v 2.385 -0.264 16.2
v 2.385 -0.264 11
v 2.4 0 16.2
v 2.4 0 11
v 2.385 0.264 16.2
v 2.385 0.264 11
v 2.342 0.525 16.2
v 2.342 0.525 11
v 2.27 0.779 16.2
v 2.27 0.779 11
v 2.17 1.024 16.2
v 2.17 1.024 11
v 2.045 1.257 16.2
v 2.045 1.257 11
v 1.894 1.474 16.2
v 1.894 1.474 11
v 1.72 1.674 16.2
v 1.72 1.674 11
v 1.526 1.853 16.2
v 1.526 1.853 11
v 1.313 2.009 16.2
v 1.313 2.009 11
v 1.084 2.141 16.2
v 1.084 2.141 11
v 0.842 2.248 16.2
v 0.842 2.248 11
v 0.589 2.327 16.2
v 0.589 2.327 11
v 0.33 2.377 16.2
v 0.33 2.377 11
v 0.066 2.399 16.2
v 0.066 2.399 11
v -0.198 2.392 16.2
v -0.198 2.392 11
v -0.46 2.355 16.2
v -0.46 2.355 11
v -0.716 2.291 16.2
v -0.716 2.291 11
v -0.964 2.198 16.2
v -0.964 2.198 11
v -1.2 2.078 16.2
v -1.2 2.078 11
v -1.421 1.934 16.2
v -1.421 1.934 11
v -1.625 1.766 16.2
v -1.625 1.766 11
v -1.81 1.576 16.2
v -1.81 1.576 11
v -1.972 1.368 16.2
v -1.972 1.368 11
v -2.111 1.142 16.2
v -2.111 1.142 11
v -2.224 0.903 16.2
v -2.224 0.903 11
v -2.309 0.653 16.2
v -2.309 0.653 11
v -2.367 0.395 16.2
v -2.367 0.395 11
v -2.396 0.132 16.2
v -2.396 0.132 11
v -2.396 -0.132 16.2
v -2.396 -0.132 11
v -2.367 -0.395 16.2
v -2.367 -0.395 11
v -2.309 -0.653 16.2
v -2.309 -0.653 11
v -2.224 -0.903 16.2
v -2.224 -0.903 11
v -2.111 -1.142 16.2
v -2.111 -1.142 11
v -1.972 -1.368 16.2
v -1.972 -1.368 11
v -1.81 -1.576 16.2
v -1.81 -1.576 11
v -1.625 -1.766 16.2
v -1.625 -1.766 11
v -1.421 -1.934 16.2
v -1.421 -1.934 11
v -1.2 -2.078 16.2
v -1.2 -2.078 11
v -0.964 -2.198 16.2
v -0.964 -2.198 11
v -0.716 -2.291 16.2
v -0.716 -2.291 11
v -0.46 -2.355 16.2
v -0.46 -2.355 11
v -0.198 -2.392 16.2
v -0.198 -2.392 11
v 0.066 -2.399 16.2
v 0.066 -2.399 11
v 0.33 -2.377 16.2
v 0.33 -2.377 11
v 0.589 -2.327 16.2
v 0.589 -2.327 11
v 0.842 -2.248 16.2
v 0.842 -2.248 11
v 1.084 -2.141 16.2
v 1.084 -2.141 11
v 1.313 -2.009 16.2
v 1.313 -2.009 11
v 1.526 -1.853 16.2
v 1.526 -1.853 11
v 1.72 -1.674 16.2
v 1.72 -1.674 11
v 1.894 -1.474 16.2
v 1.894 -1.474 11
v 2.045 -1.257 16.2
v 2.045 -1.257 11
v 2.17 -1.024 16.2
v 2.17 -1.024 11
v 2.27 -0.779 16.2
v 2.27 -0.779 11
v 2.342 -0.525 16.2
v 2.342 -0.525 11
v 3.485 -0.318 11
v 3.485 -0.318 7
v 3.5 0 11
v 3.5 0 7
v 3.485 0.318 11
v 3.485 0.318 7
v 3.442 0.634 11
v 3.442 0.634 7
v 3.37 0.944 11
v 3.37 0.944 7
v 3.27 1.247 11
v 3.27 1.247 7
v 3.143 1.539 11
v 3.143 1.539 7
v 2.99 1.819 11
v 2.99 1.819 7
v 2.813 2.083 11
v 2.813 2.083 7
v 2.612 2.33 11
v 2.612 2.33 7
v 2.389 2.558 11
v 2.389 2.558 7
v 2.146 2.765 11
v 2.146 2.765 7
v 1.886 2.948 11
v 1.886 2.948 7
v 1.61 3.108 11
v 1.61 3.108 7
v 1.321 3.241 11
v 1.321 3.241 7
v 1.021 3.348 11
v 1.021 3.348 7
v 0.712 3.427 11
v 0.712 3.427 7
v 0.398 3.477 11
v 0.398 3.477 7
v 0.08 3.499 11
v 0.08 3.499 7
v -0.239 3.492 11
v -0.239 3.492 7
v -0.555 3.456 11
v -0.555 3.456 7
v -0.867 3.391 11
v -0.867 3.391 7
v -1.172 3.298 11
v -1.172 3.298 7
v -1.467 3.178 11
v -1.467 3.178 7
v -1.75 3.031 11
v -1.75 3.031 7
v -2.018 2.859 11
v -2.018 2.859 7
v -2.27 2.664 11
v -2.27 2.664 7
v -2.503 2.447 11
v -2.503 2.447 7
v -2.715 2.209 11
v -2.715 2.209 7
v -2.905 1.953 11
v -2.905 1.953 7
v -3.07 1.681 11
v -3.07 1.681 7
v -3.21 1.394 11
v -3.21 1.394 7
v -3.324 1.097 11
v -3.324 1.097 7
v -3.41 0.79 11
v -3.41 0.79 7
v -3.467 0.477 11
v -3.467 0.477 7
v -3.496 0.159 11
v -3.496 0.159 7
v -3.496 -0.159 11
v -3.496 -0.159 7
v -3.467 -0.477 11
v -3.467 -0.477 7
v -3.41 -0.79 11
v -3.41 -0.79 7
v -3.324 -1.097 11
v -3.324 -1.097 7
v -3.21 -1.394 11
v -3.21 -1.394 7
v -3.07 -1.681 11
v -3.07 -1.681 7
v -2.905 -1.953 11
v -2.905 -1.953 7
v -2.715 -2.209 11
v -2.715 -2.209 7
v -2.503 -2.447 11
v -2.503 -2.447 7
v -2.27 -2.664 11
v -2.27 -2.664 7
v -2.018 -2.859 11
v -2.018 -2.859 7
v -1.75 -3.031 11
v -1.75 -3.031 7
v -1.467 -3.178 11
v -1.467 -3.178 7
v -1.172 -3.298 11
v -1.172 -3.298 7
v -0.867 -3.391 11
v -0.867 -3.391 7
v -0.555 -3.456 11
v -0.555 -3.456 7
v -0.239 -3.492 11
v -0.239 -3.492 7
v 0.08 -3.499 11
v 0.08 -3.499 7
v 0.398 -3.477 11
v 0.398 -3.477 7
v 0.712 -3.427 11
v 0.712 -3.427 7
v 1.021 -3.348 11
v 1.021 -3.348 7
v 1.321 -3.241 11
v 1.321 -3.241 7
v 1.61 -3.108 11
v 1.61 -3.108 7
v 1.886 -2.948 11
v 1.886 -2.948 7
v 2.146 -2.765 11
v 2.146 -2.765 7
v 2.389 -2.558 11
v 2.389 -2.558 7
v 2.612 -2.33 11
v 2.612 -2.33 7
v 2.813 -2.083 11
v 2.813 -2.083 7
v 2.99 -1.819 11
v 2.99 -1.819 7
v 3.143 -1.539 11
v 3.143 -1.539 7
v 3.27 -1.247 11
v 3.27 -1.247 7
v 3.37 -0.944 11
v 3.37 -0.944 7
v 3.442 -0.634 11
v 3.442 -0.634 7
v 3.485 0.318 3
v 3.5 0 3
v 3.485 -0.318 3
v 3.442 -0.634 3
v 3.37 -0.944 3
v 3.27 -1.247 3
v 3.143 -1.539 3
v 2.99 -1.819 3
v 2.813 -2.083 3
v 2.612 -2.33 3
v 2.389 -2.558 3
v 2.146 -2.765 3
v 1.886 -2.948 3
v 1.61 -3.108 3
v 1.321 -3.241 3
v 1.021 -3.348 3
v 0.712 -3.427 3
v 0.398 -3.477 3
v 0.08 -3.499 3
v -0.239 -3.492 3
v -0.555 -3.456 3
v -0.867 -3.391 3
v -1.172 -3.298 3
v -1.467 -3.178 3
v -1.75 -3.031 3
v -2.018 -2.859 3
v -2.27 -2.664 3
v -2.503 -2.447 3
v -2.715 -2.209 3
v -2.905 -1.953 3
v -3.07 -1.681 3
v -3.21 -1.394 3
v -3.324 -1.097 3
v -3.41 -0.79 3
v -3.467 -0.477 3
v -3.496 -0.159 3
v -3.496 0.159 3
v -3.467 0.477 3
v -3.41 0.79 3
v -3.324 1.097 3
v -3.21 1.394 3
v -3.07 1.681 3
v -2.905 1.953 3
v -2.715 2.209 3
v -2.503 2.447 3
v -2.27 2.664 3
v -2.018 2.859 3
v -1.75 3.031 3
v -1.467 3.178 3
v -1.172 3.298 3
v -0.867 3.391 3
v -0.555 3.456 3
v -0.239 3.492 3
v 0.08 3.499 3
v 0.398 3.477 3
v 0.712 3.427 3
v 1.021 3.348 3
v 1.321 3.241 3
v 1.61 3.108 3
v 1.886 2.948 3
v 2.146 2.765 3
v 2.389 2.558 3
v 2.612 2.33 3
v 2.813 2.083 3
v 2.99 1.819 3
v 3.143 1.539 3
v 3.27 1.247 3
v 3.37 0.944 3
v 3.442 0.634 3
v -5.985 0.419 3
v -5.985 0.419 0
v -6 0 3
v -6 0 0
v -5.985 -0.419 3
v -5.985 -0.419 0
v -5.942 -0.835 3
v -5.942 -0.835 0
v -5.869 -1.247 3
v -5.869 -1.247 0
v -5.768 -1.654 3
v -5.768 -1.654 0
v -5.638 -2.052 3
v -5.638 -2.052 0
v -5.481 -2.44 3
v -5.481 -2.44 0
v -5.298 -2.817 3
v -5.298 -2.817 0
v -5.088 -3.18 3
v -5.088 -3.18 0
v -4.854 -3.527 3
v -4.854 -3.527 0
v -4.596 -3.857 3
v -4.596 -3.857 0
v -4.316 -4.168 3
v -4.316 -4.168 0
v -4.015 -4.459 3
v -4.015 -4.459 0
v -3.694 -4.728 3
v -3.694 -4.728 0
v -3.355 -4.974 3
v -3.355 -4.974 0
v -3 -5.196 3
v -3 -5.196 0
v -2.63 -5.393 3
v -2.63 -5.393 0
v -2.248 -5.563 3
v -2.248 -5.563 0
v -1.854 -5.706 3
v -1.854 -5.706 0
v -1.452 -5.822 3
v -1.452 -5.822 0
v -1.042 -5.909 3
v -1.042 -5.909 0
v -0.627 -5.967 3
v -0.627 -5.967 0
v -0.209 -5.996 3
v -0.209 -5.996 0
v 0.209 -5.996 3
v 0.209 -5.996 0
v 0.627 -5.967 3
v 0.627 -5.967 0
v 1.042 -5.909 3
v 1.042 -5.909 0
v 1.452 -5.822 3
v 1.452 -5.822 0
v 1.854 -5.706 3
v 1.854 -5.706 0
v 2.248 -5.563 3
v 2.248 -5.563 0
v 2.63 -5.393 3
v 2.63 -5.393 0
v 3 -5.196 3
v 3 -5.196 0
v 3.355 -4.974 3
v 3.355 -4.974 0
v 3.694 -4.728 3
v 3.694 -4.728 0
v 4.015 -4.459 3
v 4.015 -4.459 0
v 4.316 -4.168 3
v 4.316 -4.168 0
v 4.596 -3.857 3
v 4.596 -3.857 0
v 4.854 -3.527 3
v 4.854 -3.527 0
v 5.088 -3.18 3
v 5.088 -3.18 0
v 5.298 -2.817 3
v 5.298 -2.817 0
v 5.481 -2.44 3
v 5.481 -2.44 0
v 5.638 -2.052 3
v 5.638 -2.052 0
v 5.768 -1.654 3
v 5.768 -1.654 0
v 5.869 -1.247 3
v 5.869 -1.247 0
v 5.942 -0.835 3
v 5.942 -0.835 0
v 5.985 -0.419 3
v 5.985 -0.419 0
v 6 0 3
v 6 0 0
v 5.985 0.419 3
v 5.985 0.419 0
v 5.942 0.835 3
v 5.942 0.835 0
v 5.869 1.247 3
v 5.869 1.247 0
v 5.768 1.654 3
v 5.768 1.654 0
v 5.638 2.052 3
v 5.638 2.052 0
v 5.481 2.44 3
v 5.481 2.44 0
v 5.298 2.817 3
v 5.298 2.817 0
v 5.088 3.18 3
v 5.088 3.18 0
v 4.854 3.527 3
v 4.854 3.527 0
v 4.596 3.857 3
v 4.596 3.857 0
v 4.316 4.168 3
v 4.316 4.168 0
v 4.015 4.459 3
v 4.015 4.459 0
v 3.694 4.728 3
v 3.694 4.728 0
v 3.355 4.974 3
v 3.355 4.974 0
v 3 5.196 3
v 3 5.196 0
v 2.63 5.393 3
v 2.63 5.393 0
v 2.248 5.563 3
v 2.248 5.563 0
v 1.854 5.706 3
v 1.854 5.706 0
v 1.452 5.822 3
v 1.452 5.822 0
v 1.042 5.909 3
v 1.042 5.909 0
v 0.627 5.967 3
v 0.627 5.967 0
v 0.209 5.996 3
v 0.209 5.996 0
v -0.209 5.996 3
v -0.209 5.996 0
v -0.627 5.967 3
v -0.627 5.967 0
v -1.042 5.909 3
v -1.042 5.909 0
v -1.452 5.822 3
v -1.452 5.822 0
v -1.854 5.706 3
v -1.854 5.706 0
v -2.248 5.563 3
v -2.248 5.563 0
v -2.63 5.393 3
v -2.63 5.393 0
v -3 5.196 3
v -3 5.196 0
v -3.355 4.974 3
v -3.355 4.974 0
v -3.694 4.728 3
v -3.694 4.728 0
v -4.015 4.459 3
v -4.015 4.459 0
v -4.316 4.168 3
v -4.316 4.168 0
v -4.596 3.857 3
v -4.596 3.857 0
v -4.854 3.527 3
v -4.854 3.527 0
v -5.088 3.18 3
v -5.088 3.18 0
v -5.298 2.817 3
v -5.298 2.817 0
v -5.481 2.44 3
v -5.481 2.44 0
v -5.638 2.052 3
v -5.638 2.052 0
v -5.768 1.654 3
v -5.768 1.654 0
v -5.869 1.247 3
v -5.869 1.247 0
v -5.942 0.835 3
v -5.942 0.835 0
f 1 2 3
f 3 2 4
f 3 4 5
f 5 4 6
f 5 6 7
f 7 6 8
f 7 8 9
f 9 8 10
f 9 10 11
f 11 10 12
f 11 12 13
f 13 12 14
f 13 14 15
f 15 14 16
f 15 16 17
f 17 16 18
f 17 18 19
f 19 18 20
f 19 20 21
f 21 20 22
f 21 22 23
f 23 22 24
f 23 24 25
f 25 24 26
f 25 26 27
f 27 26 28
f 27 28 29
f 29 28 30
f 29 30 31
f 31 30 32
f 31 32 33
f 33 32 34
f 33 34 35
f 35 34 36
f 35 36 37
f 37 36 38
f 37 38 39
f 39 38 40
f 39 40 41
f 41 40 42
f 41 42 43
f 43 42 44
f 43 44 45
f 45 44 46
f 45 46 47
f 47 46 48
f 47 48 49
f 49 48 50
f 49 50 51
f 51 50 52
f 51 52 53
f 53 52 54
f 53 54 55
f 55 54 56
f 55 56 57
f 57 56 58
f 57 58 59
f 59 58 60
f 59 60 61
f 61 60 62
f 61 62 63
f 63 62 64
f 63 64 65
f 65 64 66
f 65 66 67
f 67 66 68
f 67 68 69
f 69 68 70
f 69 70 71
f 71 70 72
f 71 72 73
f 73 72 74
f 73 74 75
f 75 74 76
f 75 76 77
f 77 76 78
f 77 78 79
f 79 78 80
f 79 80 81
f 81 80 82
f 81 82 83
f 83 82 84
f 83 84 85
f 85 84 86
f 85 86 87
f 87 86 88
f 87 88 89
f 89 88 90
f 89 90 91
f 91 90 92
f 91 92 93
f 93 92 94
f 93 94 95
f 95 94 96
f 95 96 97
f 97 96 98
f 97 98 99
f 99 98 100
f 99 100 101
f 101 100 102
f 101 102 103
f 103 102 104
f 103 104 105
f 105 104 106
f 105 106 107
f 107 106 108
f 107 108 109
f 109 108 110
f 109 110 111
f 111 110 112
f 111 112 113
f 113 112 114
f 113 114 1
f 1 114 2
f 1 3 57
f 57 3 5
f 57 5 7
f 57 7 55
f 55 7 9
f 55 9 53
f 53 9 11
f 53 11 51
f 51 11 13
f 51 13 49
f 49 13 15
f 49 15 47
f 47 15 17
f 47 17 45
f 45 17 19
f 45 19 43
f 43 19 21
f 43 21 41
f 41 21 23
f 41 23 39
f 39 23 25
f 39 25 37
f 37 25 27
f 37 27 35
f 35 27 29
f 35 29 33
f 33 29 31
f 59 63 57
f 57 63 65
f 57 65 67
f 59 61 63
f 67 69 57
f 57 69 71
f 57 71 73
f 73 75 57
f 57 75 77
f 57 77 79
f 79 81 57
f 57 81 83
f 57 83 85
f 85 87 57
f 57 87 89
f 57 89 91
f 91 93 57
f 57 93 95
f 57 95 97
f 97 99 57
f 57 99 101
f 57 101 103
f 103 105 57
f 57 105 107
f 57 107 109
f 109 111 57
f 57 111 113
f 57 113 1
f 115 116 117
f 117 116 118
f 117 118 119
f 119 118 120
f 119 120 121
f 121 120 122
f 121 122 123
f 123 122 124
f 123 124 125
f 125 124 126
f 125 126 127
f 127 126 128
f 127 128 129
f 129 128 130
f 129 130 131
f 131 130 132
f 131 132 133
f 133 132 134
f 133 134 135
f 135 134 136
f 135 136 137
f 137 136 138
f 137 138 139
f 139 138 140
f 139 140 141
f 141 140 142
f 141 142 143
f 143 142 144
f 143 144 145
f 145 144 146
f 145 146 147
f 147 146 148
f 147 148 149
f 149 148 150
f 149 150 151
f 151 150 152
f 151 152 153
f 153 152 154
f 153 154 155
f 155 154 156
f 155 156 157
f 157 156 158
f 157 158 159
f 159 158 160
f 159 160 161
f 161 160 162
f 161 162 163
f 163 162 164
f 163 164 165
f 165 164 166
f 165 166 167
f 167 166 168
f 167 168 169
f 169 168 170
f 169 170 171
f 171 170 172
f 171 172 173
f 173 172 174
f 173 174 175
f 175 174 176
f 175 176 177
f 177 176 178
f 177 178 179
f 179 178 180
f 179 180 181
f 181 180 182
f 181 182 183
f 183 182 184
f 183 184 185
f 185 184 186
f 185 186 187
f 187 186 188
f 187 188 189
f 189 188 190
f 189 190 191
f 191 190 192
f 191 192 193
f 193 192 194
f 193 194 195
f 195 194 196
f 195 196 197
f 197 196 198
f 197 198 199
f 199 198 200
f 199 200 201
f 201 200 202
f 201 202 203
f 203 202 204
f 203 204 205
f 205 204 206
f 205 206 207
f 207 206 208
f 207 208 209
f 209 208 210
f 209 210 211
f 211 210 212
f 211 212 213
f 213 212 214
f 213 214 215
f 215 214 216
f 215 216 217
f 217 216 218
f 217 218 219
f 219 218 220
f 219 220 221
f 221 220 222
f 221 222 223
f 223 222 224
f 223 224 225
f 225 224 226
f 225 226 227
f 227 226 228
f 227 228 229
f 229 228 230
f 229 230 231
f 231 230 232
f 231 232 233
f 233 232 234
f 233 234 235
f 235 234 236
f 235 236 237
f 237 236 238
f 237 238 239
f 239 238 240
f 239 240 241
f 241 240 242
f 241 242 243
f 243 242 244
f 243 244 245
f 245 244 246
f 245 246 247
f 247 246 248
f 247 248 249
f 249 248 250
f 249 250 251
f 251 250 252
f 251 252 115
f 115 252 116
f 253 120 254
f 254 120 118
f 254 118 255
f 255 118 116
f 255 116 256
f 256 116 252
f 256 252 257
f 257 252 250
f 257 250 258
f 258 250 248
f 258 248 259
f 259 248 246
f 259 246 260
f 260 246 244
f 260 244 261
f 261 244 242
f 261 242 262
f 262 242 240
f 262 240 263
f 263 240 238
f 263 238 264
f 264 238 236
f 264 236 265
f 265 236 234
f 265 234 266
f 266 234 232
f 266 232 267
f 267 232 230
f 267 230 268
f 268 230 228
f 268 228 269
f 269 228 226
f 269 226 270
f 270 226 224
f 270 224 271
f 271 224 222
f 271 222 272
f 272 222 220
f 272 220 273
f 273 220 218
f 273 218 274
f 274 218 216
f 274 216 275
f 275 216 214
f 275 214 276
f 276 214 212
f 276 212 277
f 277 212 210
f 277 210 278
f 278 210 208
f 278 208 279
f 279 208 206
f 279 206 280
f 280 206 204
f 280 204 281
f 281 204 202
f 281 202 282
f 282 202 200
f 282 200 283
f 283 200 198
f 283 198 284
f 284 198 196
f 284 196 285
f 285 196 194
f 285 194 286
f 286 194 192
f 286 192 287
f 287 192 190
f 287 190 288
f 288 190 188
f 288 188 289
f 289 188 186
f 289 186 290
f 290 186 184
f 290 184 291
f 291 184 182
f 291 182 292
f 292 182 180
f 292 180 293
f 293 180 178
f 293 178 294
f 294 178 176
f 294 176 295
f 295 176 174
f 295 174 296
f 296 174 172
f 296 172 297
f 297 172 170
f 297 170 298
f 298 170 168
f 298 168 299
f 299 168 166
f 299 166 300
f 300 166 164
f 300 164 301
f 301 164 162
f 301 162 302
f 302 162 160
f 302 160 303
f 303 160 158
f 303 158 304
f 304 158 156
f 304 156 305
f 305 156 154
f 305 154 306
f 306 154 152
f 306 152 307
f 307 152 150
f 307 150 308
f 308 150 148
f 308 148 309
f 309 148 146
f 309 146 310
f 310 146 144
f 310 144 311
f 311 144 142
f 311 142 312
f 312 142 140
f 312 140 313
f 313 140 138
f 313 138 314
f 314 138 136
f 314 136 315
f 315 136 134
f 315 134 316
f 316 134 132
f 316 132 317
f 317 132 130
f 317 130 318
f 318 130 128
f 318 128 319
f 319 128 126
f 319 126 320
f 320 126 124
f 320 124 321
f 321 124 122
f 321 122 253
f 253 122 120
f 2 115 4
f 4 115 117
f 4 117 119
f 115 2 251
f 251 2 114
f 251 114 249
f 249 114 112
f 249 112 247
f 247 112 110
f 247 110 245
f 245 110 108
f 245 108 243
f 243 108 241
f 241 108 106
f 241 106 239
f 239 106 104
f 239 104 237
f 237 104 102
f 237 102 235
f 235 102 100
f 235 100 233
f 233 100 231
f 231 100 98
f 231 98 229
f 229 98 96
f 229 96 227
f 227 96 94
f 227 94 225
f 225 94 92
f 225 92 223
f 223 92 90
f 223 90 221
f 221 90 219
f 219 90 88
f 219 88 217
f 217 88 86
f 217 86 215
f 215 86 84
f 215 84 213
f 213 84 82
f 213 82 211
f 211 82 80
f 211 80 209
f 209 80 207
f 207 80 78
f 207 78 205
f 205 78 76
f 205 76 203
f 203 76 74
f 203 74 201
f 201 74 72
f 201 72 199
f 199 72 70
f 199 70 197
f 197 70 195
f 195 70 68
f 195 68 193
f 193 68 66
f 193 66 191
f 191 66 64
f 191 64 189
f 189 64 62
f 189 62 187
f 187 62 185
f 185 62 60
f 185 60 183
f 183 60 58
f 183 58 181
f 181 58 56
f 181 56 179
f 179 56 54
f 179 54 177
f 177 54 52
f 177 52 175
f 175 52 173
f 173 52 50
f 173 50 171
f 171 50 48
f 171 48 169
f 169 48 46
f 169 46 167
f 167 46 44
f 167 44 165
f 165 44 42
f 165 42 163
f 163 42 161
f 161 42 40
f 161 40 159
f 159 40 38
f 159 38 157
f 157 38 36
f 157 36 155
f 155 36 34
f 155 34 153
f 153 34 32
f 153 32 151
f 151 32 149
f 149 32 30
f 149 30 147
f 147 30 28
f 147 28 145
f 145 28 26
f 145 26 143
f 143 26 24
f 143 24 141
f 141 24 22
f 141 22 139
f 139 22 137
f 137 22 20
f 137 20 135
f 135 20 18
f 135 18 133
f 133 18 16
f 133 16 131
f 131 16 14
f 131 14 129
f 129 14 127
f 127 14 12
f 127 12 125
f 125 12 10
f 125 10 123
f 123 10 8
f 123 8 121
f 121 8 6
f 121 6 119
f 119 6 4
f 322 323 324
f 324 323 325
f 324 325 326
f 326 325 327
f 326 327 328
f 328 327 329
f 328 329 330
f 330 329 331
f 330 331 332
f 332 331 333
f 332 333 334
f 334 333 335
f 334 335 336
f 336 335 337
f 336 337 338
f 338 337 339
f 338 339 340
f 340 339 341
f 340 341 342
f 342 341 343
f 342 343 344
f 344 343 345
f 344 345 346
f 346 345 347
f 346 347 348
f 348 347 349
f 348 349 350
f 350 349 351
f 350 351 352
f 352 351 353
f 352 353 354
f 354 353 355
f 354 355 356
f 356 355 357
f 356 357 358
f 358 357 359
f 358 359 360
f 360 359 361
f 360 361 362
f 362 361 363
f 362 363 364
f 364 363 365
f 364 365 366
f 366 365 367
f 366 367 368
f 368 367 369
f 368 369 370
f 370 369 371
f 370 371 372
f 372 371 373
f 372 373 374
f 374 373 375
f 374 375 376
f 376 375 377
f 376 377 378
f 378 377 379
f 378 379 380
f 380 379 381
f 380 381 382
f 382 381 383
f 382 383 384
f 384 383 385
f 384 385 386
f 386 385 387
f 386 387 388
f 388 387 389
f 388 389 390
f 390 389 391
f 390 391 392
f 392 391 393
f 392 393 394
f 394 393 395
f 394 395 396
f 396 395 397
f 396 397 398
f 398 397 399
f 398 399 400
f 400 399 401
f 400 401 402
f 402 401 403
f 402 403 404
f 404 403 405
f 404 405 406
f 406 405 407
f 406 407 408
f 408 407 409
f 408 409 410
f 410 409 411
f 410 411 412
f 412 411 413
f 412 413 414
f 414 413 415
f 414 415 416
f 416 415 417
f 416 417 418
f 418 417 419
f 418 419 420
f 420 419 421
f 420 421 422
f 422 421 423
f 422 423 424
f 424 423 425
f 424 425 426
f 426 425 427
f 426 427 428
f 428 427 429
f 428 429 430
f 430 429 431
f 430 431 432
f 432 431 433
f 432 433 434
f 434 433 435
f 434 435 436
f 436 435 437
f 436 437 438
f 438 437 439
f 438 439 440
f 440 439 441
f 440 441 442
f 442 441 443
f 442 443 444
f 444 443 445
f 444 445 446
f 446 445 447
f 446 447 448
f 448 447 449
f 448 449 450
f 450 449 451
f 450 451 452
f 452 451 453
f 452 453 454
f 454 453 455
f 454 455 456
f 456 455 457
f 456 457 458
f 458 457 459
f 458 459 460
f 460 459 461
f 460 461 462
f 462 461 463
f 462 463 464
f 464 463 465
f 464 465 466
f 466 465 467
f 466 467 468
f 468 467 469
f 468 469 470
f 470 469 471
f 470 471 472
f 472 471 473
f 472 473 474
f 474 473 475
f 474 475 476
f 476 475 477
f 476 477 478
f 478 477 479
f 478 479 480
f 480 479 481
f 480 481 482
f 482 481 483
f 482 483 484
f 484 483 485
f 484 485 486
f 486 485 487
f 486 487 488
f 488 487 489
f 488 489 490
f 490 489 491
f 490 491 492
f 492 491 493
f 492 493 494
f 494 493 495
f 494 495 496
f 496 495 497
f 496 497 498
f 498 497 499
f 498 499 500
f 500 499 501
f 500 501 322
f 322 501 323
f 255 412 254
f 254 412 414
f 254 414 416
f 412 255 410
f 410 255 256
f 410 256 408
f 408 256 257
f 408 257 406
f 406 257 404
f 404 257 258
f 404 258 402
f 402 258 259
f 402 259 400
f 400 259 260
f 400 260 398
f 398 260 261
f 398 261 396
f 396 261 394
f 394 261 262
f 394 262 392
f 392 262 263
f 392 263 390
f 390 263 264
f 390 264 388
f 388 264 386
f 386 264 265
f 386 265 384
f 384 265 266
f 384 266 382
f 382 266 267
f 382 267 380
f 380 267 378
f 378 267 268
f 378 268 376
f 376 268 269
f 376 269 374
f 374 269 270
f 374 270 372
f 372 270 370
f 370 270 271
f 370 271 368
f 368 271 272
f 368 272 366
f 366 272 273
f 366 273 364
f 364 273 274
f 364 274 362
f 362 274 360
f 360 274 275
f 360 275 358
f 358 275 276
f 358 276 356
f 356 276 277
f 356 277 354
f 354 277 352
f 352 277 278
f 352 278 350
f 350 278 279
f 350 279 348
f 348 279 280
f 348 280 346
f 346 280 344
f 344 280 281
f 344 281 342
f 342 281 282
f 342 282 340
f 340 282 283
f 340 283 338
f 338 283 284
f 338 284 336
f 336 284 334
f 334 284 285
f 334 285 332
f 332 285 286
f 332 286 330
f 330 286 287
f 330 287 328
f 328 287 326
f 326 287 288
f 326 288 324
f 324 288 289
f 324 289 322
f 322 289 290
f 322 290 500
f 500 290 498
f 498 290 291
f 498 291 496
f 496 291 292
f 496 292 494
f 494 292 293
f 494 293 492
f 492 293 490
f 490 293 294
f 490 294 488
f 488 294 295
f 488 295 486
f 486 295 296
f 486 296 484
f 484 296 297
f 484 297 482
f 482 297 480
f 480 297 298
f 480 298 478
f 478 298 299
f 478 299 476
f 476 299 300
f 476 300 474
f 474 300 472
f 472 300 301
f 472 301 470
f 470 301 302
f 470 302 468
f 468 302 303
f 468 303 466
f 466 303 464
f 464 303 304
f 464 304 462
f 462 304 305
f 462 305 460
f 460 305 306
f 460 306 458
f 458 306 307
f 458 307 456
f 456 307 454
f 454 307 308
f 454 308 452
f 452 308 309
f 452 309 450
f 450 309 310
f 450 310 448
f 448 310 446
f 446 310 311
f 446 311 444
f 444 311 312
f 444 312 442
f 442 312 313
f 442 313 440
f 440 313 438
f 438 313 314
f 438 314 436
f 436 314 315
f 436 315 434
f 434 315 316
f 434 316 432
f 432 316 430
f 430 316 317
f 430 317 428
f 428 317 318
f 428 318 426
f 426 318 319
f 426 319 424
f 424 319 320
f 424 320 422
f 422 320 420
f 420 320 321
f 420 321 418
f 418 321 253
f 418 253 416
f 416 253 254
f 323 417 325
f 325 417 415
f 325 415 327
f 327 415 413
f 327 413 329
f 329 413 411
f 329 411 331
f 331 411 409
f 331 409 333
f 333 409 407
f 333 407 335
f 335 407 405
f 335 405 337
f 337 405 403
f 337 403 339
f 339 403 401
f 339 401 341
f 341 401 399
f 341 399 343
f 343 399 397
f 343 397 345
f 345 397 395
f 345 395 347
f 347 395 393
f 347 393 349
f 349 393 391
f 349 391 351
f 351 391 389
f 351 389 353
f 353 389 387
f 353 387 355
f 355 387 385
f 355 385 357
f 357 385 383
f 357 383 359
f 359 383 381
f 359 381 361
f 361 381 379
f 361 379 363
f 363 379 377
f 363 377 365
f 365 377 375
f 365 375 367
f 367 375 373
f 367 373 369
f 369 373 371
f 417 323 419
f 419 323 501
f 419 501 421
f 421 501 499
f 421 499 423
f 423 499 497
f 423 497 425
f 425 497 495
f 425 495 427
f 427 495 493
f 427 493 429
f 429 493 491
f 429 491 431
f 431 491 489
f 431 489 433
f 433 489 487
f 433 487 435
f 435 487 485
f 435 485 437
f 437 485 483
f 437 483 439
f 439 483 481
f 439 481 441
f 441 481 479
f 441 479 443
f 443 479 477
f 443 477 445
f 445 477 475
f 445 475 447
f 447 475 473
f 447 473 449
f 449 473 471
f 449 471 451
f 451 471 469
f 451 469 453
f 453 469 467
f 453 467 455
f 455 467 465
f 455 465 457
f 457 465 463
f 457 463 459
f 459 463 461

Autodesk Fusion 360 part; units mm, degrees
sketch "Sketch1" plane through (0, 0, 0) normal (0, 0, 1) x (1, 0, 0)
  circle A0 centre (0, 0) radius 6
  dimension "d1" = 12
extrude "Extrude1" add sketch "Sketch1" along normal blind 3
sketch "Sketch2" plane through (0, 0, 3) normal (0, 0, 1) x (-1, 0, 0)
  circle A0 centre (0, 0) radius 6
  circle A1 centre (0, 0) radius 3.5
  dimension "d4" = 7
extrude "Extrude2" add sketch "Sketch2" along normal blind 8 contours A1
sketch "Sketch3" plane through (0, 0, 11) normal (0, 0, 1) x (-1, 0, 0)
  circle A0 centre (0, 0) radius 3.5
  circle A1 centre (0, 0) radius 2.4
  dimension "d7" = 4.8
extrude "Extrude3" add sketch "Sketch3" along normal blind 5.2 contours A1
